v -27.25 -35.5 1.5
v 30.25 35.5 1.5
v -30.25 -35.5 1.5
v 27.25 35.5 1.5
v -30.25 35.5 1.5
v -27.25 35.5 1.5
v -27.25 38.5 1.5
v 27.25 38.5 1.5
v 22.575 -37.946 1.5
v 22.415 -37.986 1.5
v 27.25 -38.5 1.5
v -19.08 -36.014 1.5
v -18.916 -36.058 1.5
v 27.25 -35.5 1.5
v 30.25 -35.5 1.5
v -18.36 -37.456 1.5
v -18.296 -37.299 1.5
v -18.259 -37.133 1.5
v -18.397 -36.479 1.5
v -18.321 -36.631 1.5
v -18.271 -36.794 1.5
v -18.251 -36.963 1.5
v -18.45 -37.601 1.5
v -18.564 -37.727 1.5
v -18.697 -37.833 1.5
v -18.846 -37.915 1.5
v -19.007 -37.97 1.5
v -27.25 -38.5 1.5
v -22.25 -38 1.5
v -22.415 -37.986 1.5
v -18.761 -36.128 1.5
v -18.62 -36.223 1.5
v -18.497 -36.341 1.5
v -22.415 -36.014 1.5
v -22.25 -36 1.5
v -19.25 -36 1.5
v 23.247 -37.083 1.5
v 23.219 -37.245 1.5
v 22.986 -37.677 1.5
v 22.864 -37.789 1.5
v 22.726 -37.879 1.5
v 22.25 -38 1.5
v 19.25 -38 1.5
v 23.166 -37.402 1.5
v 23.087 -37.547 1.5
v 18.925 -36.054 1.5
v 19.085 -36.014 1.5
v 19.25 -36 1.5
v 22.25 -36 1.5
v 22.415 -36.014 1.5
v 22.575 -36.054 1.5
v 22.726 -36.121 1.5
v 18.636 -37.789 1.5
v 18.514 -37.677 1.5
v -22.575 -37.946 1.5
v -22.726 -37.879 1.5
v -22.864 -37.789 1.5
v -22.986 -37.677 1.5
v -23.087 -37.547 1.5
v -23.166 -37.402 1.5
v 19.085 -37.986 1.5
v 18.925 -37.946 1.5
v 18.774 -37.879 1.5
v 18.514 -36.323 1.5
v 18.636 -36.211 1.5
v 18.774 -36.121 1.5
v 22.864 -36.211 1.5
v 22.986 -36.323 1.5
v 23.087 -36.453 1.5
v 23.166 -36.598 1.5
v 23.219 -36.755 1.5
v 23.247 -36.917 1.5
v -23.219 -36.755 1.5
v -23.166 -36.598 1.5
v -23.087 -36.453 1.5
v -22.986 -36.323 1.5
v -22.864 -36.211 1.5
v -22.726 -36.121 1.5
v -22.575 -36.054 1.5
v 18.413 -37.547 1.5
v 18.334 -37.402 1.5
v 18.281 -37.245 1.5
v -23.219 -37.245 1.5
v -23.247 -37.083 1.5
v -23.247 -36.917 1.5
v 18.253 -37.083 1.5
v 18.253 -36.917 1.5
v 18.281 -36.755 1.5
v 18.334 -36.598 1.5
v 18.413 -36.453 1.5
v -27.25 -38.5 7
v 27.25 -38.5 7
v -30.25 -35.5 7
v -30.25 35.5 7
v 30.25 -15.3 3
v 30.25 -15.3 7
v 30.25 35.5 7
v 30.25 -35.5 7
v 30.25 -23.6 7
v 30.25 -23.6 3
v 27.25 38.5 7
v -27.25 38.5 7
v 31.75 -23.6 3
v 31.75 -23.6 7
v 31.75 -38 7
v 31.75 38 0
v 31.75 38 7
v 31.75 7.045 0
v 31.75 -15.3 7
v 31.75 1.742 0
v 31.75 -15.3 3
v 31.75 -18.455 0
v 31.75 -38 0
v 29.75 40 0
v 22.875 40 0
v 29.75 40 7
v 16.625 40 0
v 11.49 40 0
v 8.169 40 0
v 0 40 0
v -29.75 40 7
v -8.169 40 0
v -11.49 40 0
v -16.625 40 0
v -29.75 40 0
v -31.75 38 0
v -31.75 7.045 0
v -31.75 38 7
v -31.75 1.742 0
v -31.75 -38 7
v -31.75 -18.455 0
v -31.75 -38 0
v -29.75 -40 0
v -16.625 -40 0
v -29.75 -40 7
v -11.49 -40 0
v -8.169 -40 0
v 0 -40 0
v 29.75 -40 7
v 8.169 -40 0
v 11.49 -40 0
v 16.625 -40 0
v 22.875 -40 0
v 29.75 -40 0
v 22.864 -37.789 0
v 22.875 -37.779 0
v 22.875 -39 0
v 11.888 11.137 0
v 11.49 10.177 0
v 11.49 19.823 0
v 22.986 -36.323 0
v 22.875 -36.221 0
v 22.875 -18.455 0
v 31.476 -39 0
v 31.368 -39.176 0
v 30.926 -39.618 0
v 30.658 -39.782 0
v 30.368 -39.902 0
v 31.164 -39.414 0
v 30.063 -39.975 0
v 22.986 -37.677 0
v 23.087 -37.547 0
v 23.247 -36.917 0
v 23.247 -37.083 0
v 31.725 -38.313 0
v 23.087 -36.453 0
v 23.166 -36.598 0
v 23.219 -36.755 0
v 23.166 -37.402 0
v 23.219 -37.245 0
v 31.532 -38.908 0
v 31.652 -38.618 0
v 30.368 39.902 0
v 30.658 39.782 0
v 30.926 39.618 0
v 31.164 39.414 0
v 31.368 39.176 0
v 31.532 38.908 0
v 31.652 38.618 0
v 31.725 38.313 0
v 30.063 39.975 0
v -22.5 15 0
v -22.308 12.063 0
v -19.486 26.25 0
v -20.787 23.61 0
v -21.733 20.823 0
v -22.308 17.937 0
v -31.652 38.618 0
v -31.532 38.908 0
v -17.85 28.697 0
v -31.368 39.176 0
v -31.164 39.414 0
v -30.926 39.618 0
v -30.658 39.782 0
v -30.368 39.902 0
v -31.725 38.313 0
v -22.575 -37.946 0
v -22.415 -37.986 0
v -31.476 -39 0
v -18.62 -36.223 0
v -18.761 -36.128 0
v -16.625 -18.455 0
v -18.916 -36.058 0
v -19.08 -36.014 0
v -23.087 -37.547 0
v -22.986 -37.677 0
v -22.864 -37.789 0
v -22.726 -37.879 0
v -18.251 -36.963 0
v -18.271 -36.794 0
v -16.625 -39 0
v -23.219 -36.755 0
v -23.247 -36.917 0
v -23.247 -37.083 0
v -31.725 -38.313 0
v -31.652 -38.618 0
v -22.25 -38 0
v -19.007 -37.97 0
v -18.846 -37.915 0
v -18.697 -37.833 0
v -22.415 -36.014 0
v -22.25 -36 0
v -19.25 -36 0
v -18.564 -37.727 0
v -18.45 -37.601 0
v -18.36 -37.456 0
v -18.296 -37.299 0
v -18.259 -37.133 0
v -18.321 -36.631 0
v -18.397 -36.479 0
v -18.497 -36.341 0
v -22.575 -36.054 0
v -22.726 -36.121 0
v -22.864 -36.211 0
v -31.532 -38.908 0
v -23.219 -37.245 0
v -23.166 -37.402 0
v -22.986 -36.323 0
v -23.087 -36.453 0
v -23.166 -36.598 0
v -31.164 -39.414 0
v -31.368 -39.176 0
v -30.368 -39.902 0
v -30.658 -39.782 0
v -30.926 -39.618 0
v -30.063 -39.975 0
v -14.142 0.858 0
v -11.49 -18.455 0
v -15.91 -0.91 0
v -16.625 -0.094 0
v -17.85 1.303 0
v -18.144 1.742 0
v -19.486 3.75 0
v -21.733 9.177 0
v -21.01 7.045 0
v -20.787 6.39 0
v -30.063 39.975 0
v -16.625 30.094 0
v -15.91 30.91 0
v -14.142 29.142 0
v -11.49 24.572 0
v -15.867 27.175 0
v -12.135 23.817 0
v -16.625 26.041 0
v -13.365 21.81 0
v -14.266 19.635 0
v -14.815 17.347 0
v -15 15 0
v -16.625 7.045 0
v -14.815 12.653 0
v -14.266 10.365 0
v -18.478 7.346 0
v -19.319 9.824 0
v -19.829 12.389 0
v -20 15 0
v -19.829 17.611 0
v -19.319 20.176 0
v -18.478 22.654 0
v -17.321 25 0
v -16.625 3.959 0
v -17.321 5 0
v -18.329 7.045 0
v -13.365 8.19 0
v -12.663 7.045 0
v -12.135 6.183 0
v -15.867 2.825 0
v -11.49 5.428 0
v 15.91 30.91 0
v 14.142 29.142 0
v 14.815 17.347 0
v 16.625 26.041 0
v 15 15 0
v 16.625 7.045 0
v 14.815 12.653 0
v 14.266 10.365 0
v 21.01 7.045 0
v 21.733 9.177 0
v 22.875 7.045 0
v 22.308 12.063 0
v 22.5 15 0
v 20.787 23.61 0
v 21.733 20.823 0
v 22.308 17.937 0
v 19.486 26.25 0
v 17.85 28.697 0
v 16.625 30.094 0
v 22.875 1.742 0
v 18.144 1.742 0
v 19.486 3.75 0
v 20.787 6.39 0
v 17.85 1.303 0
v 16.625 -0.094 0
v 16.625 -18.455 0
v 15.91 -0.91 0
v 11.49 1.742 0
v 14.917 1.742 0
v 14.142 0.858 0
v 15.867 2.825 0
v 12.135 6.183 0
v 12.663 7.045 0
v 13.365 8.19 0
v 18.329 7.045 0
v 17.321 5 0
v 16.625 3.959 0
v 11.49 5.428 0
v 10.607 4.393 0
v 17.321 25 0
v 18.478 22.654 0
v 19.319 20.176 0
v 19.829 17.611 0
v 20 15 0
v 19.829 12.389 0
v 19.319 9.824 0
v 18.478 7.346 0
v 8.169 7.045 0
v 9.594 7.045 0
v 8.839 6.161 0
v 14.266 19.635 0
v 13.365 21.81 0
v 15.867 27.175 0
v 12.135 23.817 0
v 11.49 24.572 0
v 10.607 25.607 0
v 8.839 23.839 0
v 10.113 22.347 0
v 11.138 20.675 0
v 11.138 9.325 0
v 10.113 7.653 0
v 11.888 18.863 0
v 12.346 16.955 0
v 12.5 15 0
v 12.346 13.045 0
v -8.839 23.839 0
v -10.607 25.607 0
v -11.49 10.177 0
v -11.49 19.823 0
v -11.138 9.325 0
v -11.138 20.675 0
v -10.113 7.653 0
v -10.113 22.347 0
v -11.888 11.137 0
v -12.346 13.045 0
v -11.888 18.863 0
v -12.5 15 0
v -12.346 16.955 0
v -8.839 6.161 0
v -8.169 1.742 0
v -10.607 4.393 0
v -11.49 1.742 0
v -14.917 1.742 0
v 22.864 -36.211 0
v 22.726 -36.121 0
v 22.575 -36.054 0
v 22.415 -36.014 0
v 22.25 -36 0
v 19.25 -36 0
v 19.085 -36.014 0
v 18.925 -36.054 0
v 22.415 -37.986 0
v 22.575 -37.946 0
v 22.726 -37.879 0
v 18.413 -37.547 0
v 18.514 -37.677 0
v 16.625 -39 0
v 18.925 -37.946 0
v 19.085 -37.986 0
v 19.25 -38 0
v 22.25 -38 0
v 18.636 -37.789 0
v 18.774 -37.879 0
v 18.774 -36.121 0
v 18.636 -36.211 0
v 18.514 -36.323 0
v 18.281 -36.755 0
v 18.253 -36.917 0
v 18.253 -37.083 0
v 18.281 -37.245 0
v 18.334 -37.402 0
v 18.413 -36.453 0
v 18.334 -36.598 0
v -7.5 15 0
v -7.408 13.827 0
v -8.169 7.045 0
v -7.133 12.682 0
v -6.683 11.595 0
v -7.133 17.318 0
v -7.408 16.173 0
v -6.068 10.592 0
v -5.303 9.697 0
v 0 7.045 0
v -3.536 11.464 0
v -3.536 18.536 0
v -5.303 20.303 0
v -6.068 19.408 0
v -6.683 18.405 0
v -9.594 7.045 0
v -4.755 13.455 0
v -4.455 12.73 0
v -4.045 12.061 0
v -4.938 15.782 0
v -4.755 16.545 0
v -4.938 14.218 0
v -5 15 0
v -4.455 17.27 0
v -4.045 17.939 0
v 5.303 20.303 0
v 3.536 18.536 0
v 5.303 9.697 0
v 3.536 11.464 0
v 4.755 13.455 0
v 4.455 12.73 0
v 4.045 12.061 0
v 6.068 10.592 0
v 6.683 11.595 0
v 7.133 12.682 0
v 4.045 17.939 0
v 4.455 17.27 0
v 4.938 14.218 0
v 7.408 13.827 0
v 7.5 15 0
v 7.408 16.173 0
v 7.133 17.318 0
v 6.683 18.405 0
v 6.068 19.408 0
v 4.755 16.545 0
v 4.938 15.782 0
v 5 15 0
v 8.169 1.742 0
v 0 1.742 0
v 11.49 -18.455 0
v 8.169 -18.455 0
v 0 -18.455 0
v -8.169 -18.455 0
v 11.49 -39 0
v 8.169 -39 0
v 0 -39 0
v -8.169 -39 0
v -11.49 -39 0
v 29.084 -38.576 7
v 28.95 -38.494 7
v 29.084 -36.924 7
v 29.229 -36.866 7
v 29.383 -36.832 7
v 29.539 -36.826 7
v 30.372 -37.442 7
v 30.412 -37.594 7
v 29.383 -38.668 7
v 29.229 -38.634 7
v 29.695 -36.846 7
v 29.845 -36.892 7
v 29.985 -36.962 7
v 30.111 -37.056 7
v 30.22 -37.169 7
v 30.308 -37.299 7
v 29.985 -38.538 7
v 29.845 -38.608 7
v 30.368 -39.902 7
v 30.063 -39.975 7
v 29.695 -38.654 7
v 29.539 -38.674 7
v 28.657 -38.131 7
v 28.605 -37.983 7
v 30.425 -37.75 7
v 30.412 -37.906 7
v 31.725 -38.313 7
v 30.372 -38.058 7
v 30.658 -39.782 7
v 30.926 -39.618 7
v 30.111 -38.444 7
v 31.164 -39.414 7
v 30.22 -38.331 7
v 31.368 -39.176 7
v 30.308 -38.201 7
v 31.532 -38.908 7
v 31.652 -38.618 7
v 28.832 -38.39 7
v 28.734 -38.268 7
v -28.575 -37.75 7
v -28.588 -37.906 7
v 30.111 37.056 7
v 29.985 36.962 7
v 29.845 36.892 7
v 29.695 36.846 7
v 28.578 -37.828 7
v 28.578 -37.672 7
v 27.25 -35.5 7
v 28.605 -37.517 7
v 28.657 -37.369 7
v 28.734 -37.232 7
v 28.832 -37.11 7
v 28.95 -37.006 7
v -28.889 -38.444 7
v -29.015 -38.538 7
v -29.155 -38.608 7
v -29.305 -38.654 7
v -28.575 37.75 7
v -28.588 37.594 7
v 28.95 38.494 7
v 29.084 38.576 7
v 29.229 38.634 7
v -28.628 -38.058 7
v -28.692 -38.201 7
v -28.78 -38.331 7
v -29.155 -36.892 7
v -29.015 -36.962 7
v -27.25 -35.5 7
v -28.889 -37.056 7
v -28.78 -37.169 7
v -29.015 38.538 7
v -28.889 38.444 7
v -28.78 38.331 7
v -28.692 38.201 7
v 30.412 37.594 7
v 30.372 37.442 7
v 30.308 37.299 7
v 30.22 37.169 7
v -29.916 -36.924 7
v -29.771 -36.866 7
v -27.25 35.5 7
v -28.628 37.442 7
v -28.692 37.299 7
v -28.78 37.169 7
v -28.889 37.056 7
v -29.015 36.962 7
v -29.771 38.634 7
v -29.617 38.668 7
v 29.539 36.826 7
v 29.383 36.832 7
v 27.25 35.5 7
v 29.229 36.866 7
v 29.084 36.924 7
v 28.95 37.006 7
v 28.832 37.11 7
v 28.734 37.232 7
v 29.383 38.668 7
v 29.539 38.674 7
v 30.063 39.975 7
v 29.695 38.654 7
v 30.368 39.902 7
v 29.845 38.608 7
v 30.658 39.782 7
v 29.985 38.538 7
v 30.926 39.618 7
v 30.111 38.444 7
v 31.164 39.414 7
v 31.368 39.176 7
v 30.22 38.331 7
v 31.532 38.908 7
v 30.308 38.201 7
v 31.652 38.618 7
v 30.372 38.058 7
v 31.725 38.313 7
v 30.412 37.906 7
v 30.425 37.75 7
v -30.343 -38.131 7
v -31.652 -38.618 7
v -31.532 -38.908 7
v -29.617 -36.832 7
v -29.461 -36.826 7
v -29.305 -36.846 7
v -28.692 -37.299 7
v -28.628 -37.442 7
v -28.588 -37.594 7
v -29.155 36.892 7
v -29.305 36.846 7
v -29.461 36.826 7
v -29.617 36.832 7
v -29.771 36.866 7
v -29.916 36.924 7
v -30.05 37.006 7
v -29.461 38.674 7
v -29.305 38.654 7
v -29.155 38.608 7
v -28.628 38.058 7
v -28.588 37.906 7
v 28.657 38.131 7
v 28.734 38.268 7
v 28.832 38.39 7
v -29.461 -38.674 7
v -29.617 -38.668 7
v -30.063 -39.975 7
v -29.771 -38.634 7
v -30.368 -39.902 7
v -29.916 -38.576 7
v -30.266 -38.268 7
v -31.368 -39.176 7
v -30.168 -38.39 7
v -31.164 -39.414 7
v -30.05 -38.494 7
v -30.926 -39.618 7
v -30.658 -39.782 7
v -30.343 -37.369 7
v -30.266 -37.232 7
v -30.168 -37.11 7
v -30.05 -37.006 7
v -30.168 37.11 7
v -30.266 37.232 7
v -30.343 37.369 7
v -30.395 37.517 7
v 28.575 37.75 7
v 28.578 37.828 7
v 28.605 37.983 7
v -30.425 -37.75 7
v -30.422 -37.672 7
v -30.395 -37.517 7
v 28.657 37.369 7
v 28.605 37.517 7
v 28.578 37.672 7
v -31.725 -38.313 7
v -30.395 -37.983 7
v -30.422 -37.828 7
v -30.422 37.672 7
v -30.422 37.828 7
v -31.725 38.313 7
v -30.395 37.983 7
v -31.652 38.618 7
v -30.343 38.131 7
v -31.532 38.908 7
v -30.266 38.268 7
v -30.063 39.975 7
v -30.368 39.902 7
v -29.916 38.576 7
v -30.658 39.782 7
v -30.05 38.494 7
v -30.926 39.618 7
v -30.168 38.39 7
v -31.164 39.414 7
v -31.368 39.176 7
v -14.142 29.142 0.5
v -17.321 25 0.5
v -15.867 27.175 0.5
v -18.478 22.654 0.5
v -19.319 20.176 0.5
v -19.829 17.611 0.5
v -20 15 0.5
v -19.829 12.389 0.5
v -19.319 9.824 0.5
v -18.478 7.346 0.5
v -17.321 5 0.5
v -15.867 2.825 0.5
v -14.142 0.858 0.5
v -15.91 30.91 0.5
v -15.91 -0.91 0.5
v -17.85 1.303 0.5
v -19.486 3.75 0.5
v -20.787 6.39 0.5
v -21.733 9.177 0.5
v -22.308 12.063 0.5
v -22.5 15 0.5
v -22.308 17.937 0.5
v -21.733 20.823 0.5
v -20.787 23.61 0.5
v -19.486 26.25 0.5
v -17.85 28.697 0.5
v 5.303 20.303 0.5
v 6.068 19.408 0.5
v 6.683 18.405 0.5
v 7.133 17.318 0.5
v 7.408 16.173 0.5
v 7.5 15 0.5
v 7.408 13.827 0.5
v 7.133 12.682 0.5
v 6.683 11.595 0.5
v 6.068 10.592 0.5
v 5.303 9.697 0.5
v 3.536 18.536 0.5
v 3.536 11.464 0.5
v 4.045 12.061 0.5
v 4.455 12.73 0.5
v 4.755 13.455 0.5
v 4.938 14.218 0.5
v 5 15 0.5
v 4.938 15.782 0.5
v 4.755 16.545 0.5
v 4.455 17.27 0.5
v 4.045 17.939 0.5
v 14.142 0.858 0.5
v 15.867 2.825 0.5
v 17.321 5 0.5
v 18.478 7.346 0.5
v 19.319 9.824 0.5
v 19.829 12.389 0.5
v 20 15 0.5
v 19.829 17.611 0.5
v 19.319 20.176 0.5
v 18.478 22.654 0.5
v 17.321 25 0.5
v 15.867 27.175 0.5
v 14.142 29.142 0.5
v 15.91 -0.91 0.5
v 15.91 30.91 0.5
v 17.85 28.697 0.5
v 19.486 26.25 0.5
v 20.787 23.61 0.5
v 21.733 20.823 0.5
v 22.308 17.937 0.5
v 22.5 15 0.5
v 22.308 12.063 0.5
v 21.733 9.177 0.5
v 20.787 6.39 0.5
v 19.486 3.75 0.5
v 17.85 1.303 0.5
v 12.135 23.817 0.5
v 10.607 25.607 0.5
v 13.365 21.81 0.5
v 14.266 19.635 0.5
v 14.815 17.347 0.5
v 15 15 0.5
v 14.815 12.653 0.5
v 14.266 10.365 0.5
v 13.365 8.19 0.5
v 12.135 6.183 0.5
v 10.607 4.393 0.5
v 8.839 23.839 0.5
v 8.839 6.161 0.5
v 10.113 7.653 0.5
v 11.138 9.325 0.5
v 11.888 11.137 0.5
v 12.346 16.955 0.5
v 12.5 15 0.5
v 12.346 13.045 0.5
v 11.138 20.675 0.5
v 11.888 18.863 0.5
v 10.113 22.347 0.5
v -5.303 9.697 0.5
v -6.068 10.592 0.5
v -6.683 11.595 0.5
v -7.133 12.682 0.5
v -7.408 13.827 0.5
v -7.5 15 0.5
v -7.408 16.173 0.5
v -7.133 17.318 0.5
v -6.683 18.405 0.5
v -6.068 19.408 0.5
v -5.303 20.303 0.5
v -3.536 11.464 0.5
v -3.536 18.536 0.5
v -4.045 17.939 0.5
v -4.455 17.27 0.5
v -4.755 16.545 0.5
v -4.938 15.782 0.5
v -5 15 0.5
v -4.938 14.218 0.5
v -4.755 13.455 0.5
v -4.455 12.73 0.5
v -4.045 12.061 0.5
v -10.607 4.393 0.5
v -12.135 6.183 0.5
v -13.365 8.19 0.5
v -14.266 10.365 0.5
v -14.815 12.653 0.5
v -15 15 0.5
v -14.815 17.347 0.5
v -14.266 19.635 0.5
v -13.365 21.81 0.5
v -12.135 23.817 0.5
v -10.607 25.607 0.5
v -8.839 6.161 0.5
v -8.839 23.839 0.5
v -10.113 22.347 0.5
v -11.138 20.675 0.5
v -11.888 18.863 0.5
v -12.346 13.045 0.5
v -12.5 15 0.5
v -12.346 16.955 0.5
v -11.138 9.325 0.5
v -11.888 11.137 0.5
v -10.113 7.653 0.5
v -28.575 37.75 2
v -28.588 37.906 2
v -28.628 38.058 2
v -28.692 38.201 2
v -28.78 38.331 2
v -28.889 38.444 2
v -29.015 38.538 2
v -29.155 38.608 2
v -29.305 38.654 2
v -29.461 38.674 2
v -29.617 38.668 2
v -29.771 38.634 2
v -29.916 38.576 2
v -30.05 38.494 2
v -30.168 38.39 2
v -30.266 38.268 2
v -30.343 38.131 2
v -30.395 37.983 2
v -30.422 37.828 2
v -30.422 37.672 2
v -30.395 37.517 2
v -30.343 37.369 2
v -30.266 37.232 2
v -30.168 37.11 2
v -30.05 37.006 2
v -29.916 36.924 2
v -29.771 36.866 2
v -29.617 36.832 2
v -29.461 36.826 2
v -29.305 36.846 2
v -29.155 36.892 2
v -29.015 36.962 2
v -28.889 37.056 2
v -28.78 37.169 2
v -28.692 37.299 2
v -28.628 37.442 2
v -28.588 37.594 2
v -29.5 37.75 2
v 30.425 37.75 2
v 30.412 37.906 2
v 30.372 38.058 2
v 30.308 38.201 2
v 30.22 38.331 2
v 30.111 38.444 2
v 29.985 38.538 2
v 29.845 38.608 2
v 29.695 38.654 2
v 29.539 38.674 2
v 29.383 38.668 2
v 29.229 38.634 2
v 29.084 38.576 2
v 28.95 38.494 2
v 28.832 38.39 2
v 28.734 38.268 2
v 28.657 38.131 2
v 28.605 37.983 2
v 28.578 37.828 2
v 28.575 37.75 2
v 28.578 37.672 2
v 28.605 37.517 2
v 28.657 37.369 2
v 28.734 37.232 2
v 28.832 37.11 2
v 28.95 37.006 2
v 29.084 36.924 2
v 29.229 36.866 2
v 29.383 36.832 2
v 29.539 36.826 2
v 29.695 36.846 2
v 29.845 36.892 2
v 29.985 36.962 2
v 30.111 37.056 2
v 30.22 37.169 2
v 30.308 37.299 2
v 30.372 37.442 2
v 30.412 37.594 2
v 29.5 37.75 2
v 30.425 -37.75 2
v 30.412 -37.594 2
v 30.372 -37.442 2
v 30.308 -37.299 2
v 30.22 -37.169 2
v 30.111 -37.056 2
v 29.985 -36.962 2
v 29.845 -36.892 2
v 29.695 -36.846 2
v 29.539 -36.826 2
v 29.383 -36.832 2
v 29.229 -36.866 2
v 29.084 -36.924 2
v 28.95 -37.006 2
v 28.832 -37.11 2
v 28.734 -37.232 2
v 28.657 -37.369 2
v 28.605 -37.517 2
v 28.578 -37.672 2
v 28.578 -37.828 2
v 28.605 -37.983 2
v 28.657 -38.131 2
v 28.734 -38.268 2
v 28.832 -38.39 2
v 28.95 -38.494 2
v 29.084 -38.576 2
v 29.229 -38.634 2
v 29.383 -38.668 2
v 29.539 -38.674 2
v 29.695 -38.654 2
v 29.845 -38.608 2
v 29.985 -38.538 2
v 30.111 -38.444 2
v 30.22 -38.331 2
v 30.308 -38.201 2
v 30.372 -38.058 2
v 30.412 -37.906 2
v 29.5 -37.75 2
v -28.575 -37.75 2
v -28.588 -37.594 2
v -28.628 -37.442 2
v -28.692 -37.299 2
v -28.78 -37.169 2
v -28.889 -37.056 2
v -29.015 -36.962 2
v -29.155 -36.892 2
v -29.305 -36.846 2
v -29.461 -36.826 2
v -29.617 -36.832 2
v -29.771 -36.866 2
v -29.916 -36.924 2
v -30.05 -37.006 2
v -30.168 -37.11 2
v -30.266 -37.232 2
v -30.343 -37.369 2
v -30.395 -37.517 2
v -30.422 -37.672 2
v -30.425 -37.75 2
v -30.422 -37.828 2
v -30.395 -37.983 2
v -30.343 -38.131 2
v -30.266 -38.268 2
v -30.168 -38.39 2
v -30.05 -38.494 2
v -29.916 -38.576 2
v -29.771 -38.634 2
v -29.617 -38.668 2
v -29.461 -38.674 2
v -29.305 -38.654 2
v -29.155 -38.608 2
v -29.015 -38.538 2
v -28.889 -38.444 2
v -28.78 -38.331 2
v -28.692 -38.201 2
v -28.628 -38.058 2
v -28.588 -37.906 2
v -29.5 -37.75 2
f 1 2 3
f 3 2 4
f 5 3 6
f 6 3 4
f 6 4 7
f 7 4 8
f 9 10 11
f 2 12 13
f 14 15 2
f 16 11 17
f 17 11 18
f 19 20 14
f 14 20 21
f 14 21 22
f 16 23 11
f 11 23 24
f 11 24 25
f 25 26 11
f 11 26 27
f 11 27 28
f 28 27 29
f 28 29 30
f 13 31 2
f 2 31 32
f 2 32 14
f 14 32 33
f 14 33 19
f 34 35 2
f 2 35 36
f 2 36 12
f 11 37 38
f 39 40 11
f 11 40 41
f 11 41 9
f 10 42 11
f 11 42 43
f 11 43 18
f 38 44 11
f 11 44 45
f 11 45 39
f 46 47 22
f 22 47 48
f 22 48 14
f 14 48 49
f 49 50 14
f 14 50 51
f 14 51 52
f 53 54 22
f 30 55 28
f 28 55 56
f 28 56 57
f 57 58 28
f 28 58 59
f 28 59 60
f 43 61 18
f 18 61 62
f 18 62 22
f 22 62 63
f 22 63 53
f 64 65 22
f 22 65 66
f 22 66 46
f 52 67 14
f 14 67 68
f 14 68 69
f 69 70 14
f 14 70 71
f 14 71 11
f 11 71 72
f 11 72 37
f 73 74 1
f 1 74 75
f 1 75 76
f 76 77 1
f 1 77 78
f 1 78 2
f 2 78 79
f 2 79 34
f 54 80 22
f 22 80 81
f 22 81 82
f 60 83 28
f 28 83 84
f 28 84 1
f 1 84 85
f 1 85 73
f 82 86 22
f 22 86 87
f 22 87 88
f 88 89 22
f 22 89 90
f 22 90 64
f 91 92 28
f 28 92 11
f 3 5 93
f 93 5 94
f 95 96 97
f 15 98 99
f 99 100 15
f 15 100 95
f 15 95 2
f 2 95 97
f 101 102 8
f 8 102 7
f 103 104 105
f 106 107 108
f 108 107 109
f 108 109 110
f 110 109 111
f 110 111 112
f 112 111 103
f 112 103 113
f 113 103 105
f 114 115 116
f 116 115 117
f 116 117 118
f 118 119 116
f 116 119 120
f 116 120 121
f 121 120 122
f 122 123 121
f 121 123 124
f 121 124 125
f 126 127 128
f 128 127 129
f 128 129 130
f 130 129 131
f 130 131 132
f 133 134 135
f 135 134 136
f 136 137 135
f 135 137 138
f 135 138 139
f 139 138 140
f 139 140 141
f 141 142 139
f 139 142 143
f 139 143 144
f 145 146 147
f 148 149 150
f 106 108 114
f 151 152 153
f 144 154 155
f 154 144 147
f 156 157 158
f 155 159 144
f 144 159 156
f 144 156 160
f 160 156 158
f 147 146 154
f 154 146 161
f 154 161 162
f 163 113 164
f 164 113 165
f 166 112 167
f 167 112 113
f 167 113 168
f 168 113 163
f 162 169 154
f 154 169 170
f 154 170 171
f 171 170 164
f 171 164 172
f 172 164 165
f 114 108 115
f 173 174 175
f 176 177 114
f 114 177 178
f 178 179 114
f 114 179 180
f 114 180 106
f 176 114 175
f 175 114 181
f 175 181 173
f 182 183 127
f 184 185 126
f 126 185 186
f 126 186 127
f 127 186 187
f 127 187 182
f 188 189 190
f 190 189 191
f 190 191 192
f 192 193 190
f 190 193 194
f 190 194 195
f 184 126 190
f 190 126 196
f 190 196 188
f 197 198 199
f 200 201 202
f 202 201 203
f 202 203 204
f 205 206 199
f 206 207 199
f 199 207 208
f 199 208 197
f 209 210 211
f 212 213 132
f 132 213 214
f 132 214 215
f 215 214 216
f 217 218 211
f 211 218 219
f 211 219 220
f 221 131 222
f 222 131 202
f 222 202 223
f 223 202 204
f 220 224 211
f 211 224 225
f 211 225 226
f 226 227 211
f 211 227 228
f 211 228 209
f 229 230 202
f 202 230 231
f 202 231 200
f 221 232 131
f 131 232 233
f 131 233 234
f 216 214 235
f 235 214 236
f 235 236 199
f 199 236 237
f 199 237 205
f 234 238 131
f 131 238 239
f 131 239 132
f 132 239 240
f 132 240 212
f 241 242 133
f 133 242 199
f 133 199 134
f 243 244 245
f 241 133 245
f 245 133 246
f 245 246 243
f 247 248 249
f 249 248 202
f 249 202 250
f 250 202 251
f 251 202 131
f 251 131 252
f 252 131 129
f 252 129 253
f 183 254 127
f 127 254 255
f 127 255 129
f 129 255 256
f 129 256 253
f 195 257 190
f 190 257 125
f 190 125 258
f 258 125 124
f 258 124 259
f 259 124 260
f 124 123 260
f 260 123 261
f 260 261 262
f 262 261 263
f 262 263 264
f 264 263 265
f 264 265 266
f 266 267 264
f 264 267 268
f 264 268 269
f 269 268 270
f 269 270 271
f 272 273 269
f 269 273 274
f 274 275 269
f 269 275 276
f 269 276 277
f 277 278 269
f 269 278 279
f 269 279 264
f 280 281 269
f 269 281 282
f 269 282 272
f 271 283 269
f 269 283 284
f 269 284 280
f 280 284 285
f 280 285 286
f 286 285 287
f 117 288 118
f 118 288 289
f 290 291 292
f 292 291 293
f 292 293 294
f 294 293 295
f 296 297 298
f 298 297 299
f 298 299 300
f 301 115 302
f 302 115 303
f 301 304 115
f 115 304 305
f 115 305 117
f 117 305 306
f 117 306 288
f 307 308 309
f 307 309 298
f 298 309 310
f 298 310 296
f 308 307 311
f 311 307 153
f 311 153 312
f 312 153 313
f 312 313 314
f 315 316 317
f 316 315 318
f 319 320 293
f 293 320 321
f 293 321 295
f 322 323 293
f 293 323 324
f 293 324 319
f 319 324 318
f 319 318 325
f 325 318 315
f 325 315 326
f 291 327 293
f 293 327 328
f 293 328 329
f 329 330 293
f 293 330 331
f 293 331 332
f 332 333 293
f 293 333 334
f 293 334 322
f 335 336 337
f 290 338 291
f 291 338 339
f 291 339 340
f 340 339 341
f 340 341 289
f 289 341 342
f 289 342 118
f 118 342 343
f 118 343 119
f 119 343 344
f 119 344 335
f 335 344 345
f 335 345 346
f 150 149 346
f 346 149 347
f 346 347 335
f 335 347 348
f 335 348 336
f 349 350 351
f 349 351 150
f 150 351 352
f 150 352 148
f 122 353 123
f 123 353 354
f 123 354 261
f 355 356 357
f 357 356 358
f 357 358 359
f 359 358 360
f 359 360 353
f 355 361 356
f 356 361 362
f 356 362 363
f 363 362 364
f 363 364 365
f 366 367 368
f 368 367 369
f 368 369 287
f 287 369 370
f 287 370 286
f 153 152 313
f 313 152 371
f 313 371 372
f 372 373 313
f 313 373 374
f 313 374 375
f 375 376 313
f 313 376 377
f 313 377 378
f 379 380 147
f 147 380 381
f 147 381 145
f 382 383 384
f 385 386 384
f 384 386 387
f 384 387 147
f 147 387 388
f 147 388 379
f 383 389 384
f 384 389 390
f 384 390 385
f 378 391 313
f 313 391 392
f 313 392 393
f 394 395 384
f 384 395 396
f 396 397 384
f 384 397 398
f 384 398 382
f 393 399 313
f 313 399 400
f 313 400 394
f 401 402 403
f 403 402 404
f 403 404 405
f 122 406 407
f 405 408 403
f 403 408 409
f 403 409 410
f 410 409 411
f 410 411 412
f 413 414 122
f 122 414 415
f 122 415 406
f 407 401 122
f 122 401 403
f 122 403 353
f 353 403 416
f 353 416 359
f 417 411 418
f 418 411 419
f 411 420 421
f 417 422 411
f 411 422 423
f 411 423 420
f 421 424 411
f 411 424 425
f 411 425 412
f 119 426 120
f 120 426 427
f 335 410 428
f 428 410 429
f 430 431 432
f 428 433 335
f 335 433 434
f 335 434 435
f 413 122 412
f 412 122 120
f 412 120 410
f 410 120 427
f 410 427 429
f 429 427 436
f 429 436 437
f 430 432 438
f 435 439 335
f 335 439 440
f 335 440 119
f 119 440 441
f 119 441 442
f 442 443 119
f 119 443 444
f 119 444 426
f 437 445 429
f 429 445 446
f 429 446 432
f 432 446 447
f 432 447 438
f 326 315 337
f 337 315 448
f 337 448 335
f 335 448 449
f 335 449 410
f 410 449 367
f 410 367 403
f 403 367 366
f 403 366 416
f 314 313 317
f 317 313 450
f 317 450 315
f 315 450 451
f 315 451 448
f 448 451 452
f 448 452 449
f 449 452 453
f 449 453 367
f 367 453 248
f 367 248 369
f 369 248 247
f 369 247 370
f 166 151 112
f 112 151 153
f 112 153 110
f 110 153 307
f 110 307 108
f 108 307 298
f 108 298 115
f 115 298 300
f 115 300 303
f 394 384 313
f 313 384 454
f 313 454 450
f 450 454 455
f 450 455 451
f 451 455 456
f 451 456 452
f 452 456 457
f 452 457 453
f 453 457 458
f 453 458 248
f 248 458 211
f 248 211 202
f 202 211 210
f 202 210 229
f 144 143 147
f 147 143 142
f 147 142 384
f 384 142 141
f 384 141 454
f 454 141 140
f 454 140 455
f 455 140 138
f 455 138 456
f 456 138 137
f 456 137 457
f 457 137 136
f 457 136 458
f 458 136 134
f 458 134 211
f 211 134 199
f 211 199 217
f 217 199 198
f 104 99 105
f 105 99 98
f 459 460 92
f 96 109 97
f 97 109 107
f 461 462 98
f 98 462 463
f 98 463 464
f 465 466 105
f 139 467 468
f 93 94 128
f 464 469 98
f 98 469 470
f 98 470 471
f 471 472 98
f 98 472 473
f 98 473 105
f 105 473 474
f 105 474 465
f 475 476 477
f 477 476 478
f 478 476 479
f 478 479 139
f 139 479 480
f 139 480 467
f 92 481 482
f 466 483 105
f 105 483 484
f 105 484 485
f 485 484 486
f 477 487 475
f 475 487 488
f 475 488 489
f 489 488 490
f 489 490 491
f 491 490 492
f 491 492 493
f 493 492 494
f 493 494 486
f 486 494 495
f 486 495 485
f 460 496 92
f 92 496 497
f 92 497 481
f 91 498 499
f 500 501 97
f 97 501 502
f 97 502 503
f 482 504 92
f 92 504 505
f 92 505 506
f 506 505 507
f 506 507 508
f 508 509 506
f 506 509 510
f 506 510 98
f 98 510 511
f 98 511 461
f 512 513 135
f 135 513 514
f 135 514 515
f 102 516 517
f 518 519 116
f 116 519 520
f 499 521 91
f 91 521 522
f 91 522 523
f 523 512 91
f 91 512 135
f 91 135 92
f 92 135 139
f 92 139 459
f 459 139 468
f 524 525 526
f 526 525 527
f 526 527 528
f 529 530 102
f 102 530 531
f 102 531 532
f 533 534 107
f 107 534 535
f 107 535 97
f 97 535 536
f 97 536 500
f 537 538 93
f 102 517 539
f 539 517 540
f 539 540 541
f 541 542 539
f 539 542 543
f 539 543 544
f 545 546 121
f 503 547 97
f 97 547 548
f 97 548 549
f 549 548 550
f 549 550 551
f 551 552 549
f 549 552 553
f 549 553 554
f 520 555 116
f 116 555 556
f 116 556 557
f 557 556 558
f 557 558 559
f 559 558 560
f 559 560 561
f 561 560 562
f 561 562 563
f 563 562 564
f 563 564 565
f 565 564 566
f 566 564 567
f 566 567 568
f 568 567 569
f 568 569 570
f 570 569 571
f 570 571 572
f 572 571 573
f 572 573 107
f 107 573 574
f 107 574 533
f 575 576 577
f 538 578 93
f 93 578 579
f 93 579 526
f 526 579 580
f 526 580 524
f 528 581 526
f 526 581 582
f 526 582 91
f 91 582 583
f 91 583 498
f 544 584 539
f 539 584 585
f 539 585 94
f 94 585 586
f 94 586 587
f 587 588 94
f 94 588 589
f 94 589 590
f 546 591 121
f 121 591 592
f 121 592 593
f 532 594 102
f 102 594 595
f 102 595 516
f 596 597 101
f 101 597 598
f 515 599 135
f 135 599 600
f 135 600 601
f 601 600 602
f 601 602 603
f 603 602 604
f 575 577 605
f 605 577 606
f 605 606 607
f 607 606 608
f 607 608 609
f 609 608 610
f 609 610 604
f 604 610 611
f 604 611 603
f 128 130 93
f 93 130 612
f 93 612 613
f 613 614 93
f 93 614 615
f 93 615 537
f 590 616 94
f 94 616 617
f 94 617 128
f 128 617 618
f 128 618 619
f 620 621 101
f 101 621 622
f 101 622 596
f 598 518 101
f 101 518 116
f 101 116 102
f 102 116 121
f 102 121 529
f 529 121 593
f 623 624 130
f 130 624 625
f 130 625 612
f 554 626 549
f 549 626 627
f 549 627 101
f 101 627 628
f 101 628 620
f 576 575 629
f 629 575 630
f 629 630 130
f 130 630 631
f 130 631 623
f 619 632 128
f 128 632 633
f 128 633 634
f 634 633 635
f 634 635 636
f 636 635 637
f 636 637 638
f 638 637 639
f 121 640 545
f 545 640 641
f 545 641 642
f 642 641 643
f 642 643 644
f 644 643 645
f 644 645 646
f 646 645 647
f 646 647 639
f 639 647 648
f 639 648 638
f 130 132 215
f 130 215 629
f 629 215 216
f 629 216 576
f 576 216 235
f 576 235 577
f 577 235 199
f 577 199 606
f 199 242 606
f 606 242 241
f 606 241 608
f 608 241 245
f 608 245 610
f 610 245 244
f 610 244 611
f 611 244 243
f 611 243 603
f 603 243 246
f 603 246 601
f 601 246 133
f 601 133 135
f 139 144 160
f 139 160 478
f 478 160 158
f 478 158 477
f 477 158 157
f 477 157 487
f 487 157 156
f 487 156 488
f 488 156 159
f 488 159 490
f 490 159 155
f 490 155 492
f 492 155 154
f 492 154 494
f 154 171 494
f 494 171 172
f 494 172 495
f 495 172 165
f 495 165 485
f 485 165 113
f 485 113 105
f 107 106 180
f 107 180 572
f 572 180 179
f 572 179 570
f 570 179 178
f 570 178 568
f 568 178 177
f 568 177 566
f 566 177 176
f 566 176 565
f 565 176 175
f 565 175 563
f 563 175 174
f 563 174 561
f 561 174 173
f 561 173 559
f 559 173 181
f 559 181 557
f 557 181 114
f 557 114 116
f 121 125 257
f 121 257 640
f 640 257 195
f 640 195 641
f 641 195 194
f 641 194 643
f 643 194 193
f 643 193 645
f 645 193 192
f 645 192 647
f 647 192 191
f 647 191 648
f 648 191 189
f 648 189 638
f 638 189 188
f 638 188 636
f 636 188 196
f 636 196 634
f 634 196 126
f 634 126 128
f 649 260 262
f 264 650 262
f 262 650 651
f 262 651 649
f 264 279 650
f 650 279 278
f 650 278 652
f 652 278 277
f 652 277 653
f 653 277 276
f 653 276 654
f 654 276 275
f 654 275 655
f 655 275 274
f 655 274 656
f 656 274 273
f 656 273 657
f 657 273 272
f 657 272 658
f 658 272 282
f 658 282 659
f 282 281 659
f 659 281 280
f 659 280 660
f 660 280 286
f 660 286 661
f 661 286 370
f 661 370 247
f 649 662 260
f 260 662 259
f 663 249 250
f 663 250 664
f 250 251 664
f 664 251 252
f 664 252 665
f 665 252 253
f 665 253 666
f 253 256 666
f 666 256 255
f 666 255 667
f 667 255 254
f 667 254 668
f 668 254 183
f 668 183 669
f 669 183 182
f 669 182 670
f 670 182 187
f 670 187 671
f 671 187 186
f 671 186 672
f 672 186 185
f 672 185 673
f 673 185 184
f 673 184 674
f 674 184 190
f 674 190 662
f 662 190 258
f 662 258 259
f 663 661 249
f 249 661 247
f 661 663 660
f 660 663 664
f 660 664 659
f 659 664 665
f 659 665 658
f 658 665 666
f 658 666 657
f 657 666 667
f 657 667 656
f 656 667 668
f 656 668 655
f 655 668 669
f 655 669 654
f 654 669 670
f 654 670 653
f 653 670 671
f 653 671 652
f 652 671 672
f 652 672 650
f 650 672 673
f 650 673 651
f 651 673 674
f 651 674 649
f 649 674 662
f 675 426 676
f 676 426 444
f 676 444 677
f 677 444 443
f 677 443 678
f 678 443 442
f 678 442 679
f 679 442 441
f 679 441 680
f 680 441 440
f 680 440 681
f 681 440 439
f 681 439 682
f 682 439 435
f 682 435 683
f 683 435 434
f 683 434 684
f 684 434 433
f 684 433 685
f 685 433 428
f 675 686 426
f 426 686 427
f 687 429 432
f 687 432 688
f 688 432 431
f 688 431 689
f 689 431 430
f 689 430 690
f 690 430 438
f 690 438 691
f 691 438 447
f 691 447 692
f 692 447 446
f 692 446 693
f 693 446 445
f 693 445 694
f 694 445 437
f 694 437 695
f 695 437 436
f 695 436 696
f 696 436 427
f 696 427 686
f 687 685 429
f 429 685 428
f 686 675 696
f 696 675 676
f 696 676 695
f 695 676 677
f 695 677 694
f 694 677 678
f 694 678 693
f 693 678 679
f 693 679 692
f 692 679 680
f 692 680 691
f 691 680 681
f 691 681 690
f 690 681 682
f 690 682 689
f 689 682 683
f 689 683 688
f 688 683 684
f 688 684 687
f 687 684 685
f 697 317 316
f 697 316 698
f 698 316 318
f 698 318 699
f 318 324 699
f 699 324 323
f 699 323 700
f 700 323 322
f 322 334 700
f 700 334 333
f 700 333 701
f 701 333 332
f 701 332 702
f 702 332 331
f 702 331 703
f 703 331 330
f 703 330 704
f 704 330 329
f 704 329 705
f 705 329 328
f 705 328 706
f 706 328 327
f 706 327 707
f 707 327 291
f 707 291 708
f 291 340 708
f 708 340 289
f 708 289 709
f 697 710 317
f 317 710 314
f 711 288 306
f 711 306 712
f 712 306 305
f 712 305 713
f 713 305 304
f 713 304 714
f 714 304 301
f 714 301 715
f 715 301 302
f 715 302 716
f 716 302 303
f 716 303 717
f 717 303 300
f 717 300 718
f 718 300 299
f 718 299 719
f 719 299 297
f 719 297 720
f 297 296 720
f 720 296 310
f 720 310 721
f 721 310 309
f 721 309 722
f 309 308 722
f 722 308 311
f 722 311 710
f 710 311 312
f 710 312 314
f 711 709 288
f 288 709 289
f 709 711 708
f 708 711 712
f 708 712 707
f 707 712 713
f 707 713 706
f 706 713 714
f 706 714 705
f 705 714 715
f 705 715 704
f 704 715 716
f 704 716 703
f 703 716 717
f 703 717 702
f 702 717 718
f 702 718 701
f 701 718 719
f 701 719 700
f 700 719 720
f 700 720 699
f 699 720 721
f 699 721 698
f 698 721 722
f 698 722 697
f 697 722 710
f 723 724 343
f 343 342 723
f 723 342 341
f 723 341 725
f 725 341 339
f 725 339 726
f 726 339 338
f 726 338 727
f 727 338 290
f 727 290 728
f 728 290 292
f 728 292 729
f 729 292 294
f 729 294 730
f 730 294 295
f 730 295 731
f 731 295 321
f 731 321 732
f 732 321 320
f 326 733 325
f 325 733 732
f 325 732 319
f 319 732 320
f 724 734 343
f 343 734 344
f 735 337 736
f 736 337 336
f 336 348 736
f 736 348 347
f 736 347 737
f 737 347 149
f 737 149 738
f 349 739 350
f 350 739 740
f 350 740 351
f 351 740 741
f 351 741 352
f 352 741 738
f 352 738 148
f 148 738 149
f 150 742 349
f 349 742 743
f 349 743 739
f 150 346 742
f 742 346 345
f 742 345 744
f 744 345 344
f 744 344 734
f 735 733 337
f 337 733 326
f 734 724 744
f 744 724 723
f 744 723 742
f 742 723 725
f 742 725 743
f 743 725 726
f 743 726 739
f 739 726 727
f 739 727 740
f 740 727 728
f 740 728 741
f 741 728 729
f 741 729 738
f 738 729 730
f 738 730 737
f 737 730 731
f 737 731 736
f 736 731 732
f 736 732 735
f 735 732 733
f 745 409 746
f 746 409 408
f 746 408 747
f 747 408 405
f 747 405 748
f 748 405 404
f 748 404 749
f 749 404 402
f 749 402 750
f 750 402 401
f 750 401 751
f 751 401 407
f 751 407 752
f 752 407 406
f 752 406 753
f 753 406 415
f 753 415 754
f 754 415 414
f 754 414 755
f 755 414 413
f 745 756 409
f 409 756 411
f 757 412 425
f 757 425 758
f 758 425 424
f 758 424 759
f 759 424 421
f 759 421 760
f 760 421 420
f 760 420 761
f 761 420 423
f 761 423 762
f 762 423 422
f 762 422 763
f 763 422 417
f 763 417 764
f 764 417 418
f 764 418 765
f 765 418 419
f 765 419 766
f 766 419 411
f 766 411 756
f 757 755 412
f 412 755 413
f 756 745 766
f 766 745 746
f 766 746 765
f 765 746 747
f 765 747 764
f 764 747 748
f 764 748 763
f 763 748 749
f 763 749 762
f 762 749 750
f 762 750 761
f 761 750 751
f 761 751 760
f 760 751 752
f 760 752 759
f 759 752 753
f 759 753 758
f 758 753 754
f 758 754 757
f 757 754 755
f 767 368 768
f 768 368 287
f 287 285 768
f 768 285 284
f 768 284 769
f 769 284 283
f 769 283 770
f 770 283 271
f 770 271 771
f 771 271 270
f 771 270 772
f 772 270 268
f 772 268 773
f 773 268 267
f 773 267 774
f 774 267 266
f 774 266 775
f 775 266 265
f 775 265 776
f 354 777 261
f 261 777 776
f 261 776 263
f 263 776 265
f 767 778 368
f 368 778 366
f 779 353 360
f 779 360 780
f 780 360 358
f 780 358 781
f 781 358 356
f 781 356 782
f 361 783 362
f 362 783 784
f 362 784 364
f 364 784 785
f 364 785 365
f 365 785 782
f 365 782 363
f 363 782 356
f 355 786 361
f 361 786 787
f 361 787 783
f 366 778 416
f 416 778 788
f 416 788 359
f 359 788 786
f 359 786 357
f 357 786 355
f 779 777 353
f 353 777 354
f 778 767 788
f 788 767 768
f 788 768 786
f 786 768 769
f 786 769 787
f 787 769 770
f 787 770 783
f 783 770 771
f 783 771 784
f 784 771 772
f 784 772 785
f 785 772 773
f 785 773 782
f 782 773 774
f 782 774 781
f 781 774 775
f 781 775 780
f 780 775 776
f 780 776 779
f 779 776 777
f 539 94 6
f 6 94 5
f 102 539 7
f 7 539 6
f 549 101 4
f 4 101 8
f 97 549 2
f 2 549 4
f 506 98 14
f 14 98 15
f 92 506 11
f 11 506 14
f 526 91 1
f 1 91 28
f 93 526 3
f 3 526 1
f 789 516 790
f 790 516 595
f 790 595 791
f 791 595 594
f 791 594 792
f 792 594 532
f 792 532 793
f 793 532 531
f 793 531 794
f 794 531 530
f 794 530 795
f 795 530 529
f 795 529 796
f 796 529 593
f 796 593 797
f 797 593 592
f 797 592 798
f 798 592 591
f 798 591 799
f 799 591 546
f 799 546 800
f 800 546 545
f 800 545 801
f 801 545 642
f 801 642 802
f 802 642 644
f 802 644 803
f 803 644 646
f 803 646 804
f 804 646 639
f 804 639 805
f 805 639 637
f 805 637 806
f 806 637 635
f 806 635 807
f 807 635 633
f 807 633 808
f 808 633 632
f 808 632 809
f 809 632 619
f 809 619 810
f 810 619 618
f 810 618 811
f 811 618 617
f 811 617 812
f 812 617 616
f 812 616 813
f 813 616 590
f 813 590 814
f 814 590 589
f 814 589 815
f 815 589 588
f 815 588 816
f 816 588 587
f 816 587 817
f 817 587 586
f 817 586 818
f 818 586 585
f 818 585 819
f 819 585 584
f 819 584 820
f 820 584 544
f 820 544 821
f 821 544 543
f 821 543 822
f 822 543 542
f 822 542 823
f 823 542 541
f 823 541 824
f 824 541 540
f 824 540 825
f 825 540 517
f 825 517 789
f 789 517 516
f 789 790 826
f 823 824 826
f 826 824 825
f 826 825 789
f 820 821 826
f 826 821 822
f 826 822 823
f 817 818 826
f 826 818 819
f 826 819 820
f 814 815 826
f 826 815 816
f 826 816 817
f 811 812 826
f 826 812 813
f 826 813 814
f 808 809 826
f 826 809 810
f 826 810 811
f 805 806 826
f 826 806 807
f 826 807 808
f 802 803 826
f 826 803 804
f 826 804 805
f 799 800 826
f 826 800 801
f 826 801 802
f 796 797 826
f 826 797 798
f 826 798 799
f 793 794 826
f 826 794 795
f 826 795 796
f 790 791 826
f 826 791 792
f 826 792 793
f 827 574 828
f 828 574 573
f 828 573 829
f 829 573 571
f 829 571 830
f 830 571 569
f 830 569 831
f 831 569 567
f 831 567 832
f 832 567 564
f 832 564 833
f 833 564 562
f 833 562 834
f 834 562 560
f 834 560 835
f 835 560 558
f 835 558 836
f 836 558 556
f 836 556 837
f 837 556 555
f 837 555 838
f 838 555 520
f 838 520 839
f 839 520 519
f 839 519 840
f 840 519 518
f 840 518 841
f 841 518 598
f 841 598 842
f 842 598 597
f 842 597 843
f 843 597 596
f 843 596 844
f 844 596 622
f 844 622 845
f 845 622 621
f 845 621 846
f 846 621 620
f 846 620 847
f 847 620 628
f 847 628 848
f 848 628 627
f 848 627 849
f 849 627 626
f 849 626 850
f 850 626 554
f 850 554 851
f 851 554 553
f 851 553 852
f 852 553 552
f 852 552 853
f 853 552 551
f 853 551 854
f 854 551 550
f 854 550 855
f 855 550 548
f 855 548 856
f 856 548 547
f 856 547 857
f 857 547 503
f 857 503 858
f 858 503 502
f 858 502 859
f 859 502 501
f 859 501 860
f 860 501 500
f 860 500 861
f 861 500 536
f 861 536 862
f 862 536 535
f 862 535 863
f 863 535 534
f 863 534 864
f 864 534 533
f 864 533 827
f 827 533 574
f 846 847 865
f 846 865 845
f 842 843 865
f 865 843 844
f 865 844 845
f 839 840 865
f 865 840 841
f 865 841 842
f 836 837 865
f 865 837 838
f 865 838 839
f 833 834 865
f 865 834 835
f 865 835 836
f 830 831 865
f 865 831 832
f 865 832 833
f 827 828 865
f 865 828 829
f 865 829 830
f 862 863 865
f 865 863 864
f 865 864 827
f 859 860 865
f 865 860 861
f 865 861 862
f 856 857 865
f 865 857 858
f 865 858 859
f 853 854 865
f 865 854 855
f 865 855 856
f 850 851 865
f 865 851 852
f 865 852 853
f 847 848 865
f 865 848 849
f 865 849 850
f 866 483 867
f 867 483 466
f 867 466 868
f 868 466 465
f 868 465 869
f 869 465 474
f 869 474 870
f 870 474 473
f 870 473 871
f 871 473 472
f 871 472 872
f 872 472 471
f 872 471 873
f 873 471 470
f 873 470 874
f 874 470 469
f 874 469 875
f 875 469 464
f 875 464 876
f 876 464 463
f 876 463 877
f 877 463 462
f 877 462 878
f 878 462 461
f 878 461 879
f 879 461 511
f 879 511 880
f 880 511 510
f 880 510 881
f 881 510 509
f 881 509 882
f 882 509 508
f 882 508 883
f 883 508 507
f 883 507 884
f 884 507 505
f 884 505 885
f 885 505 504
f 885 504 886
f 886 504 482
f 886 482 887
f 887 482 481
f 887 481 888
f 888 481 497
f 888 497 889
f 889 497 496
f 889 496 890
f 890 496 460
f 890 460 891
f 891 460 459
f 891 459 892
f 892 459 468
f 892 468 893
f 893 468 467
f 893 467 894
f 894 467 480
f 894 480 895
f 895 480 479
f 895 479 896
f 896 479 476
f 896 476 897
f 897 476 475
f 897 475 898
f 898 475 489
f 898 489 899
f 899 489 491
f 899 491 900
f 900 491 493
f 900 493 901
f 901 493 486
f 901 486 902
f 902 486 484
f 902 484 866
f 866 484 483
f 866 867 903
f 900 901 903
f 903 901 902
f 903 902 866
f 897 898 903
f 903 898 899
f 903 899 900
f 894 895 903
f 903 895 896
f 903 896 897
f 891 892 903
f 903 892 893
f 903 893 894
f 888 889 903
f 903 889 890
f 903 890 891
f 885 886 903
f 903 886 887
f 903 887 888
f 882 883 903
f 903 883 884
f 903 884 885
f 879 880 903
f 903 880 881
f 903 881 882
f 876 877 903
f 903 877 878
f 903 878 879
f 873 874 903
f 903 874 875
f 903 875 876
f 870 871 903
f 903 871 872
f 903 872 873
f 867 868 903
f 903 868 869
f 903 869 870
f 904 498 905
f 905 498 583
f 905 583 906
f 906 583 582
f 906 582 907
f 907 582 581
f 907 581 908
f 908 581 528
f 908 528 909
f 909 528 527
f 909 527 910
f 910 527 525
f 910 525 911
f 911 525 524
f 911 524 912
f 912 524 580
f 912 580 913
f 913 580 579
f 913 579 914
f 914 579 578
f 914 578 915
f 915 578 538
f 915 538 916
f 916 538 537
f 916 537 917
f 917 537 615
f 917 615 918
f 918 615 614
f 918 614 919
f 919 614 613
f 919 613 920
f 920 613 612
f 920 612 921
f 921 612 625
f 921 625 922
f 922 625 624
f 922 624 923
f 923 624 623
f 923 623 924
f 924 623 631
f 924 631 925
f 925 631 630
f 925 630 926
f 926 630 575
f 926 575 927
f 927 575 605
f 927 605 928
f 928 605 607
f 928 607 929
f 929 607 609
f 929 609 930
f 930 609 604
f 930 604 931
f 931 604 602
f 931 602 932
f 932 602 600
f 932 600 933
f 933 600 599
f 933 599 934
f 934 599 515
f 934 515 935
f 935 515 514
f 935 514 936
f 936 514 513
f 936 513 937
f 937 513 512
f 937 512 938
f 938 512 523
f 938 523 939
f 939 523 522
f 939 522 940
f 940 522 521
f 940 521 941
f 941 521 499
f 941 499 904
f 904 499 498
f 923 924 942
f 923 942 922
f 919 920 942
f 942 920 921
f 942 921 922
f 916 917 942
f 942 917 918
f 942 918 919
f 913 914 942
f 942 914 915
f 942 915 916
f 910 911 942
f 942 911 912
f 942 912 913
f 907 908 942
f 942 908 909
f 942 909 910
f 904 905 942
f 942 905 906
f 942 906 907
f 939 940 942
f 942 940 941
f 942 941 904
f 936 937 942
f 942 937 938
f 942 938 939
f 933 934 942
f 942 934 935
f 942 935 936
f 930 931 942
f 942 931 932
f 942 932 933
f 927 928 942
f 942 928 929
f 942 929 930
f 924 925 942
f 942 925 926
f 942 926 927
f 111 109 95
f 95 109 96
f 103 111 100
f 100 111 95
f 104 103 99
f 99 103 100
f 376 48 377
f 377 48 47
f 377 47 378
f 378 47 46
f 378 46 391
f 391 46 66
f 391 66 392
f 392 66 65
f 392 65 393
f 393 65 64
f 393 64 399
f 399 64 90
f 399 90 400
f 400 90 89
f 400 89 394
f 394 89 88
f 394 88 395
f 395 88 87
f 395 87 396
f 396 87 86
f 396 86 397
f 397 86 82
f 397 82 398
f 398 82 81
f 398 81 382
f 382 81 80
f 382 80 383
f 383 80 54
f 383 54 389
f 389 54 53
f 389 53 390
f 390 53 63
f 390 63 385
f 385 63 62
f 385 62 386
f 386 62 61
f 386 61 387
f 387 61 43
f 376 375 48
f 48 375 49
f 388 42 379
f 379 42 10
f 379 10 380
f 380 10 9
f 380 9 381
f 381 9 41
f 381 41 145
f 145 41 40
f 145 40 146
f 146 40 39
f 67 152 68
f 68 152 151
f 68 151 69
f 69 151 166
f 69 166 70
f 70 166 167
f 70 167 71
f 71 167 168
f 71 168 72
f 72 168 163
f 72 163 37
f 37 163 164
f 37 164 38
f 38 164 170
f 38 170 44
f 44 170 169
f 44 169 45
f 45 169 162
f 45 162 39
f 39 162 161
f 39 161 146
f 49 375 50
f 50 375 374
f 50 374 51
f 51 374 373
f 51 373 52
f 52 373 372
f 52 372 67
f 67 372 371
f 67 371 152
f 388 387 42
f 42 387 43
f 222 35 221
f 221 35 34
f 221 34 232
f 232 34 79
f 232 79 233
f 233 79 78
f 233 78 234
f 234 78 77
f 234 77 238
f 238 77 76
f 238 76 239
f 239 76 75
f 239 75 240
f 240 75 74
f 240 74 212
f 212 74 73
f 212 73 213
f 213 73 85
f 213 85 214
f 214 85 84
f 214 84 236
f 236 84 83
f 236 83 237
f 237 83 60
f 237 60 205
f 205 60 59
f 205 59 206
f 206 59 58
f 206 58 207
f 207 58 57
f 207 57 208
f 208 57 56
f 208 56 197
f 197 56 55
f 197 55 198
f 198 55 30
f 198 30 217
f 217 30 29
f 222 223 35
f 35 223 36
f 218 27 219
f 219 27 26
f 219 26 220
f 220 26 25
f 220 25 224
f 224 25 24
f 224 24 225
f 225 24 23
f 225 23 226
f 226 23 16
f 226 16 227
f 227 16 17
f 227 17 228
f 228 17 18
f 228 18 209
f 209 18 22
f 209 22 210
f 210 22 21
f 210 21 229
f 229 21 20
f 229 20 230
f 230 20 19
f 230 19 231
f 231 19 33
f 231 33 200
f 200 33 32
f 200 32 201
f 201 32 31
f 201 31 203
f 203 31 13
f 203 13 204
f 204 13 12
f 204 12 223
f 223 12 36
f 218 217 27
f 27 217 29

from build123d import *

# Parameters (mm, degrees)
IZIM1_W                     = 63.5
IZIM1_H                     = 80
Y_KSEKLIK_EKSTR_ZYON1_DEPTH = 1.5
IZIM2_W                     = 63.5
IZIM2_H                     = 80
IZIM2_W_2                   = 60.5
IZIM2_H_2                   = 77
Y_KSEKLIK_EKSTR_ZYON2_DEPTH = 5.5
RADYUS1_R                   = 2
KES_EKSTR_ZYON2_DEPTH       = 0.5
IZIM8_W                     = 3
IZIM8_H                     = 3
Y_KSEKLIK_EKSTR_ZYON4_DEPTH = 5.5
IZIM9_R                     = 0.925
KES_EKSTR_ZYON4_DEPTH       = 5
IZIM10_W                    = 4
IZIM10_H                    = 8.3
KES_EKSTR_ZYON5_DEPTH       = 2
KES_EKSTR_ZYON6_DEPTH       = 1.5


with BuildPart() as part:
    # Çizim1 → Yükseklik-Ekstrüzyon1 (new body)
    with BuildSketch(Plane.XY):
        Rectangle(IZIM1_W, IZIM1_H)
    extrude(amount=Y_KSEKLIK_EKSTR_ZYON1_DEPTH)

    # Çizim2 → Yükseklik-Ekstrüzyon2 (add)
    with BuildSketch(Plane.XY.offset(1.5)):
        Rectangle(IZIM2_W, IZIM2_H)
        Rectangle(IZIM2_W_2, IZIM2_H_2, mode=Mode.SUBTRACT)
    extrude(amount=Y_KSEKLIK_EKSTR_ZYON2_DEPTH)

    # Radyus1
    radyus1_edges = [part.edges().sort_by_distance(p)[0] for p in [
        (31.75, -40, 3.5),
        (-31.75, -40, 3.5),
        (-31.75, 40, 3.5),
        (31.75, 40, 3.5),
    ]]
    fillet(radyus1_edges, radius=RADYUS1_R)

    # Çizim6 → Kes-Ekstrüzyon2 (cut)
    with BuildSketch(Plane(origin=(0, 0, 0), x_dir=(-1, 0, 0), z_dir=(0, 0, -1))):
        with BuildLine():
            Line((-3.535533906, 18.535533906), (-5.303300859, 20.303300859))
            ThreePointArc((-5.303300859, 20.303300859), (-7.5, 15), (-5.303300859, 9.696699141))
            Line((-5.303300859, 9.696699141), (-3.535533906, 11.464466094))
            ThreePointArc((-3.535533906, 11.464466094), (-5, 15), (-3.535533906, 18.535533906))
        make_face()
        with BuildLine():
            Line((3.535533906, 18.535533906), (5.303300859, 20.303300859))
            ThreePointArc((5.303300859, 20.303300859), (7.5, 15), (5.303300859, 9.696699141))
            Line((5.303300859, 9.696699141), (3.535533906, 11.464466094))
            ThreePointArc((3.535533906, 11.464466094), (5, 15), (3.535533906, 18.535533906))
        make_face()
        with BuildLine():
            Line((-8.838834765, 23.838834765), (-10.606601718, 25.606601718))
            ThreePointArc((-10.606601718, 25.606601718), (-15, 15), (-10.606601718, 4.393398282))
            Line((-10.606601718, 4.393398282), (-8.838834765, 6.161165235))
            ThreePointArc((-8.838834765, 6.161165235), (-12.5, 15), (-8.838834765, 23.838834765))
        make_face()
        with BuildLine():
            Line((-14.142135624, 29.142135624), (-15.909902577, 30.909902577))
            ThreePointArc((-15.909902577, 30.909902577), (-22.5, 15), (-15.909902577, -0.909902577))
            Line((-15.909902577, -0.909902577), (-14.142135624, 0.857864376))
            ThreePointArc((-14.142135624, 0.857864376), (-20, 15), (-14.142135624, 29.142135624))
        make_face()
        with BuildLine():
            Line((8.838834765, 23.838834765), (10.606601718, 25.606601718))
            ThreePointArc((10.606601718, 25.606601718), (15, 15), (10.606601718, 4.393398282))
            Line((10.606601718, 4.393398282), (8.838834765, 6.161165235))
            ThreePointArc((8.838834765, 6.161165235), (12.5, 15), (8.838834765, 23.838834765))
        make_face()
        with BuildLine():
            Line((14.142135624, 29.142135624), (15.909902577, 30.909902577))
            ThreePointArc((15.909902577, 30.909902577), (22.5, 15), (15.909902577, -0.909902577))
            Line((15.909902577, -0.909902577), (14.142135624, 0.857864376))
            ThreePointArc((14.142135624, 0.857864376), (20, 15), (14.142135624, 29.142135624))
        make_face()
    extrude(amount=-KES_EKSTR_ZYON2_DEPTH, mode=Mode.SUBTRACT)

    # Çizim8 → Yükseklik-Ekstrüzyon4 (add)
    with BuildSketch(Plane.XY.offset(1.5)):
        with Locations((-28.75, 37)):
            Rectangle(IZIM8_W, IZIM8_H)
        with Locations((28.75, 37)):
            Rectangle(IZIM8_W, IZIM8_H)
        with Locations((28.75, -37)):
            Rectangle(IZIM8_W, IZIM8_H)
        with Locations((-28.75, -37)):
            Rectangle(IZIM8_W, IZIM8_H)
    extrude(amount=Y_KSEKLIK_EKSTR_ZYON4_DEPTH)

    # Çizim9 → Kes-Ekstrüzyon4 (cut)
    with BuildSketch(Plane.XY.offset(7)):
        with Locations((-29.5, 37.75)):
            Circle(IZIM9_R)
        with Locations(Location((29.5, 37.75, 0), (0, 0, 180))):
            Circle(IZIM9_R)
        with Locations((29.5, -37.75)):
            Circle(IZIM9_R)
        with Locations(Location((-29.5, -37.75, 0), (0, 0, 180))):
            Circle(IZIM9_R)
    extrude(amount=-KES_EKSTR_ZYON4_DEPTH, mode=Mode.SUBTRACT)

    # Çizim10 → Kes-Ekstrüzyon5 (cut)
    with BuildSketch(Plane(origin=(31.75, 0, 0), x_dir=(0, 0, -1), z_dir=(1, 0, 0))):
        with Locations((-5, -19.45)):
            Rectangle(IZIM10_W, IZIM10_H)
    extrude(amount=-KES_EKSTR_ZYON5_DEPTH, mode=Mode.SUBTRACT)

    # Çizim11 → Kes-Ekstrüzyon6 (cut)
    with BuildSketch(Plane.XY.offset(1.5)):
        with BuildLine():
            Line((-22.25, -36), (-19.25, -36))
            ThreePointArc((-19.25, -36), (-18.257492443, -36.877816736), (-19.007464375, -37.9701425))
            Line((-19.007464375, -37.9701425), (-22.25, -38))
            ThreePointArc((-22.25, -38), (-23.25, -37), (-22.25, -36))
        make_face()
        with BuildLine():
            Line((19.25, -36), (22.25, -36))
            ThreePointArc((22.25, -36), (23.25, -37), (22.25, -38))
            Line((22.25, -38), (19.25, -38))
            ThreePointArc((19.25, -38), (18.25, -37), (19.25, -36))
        make_face()
    extrude(amount=-KES_EKSTR_ZYON6_DEPTH, mode=Mode.SUBTRACT)


solid = part.part
